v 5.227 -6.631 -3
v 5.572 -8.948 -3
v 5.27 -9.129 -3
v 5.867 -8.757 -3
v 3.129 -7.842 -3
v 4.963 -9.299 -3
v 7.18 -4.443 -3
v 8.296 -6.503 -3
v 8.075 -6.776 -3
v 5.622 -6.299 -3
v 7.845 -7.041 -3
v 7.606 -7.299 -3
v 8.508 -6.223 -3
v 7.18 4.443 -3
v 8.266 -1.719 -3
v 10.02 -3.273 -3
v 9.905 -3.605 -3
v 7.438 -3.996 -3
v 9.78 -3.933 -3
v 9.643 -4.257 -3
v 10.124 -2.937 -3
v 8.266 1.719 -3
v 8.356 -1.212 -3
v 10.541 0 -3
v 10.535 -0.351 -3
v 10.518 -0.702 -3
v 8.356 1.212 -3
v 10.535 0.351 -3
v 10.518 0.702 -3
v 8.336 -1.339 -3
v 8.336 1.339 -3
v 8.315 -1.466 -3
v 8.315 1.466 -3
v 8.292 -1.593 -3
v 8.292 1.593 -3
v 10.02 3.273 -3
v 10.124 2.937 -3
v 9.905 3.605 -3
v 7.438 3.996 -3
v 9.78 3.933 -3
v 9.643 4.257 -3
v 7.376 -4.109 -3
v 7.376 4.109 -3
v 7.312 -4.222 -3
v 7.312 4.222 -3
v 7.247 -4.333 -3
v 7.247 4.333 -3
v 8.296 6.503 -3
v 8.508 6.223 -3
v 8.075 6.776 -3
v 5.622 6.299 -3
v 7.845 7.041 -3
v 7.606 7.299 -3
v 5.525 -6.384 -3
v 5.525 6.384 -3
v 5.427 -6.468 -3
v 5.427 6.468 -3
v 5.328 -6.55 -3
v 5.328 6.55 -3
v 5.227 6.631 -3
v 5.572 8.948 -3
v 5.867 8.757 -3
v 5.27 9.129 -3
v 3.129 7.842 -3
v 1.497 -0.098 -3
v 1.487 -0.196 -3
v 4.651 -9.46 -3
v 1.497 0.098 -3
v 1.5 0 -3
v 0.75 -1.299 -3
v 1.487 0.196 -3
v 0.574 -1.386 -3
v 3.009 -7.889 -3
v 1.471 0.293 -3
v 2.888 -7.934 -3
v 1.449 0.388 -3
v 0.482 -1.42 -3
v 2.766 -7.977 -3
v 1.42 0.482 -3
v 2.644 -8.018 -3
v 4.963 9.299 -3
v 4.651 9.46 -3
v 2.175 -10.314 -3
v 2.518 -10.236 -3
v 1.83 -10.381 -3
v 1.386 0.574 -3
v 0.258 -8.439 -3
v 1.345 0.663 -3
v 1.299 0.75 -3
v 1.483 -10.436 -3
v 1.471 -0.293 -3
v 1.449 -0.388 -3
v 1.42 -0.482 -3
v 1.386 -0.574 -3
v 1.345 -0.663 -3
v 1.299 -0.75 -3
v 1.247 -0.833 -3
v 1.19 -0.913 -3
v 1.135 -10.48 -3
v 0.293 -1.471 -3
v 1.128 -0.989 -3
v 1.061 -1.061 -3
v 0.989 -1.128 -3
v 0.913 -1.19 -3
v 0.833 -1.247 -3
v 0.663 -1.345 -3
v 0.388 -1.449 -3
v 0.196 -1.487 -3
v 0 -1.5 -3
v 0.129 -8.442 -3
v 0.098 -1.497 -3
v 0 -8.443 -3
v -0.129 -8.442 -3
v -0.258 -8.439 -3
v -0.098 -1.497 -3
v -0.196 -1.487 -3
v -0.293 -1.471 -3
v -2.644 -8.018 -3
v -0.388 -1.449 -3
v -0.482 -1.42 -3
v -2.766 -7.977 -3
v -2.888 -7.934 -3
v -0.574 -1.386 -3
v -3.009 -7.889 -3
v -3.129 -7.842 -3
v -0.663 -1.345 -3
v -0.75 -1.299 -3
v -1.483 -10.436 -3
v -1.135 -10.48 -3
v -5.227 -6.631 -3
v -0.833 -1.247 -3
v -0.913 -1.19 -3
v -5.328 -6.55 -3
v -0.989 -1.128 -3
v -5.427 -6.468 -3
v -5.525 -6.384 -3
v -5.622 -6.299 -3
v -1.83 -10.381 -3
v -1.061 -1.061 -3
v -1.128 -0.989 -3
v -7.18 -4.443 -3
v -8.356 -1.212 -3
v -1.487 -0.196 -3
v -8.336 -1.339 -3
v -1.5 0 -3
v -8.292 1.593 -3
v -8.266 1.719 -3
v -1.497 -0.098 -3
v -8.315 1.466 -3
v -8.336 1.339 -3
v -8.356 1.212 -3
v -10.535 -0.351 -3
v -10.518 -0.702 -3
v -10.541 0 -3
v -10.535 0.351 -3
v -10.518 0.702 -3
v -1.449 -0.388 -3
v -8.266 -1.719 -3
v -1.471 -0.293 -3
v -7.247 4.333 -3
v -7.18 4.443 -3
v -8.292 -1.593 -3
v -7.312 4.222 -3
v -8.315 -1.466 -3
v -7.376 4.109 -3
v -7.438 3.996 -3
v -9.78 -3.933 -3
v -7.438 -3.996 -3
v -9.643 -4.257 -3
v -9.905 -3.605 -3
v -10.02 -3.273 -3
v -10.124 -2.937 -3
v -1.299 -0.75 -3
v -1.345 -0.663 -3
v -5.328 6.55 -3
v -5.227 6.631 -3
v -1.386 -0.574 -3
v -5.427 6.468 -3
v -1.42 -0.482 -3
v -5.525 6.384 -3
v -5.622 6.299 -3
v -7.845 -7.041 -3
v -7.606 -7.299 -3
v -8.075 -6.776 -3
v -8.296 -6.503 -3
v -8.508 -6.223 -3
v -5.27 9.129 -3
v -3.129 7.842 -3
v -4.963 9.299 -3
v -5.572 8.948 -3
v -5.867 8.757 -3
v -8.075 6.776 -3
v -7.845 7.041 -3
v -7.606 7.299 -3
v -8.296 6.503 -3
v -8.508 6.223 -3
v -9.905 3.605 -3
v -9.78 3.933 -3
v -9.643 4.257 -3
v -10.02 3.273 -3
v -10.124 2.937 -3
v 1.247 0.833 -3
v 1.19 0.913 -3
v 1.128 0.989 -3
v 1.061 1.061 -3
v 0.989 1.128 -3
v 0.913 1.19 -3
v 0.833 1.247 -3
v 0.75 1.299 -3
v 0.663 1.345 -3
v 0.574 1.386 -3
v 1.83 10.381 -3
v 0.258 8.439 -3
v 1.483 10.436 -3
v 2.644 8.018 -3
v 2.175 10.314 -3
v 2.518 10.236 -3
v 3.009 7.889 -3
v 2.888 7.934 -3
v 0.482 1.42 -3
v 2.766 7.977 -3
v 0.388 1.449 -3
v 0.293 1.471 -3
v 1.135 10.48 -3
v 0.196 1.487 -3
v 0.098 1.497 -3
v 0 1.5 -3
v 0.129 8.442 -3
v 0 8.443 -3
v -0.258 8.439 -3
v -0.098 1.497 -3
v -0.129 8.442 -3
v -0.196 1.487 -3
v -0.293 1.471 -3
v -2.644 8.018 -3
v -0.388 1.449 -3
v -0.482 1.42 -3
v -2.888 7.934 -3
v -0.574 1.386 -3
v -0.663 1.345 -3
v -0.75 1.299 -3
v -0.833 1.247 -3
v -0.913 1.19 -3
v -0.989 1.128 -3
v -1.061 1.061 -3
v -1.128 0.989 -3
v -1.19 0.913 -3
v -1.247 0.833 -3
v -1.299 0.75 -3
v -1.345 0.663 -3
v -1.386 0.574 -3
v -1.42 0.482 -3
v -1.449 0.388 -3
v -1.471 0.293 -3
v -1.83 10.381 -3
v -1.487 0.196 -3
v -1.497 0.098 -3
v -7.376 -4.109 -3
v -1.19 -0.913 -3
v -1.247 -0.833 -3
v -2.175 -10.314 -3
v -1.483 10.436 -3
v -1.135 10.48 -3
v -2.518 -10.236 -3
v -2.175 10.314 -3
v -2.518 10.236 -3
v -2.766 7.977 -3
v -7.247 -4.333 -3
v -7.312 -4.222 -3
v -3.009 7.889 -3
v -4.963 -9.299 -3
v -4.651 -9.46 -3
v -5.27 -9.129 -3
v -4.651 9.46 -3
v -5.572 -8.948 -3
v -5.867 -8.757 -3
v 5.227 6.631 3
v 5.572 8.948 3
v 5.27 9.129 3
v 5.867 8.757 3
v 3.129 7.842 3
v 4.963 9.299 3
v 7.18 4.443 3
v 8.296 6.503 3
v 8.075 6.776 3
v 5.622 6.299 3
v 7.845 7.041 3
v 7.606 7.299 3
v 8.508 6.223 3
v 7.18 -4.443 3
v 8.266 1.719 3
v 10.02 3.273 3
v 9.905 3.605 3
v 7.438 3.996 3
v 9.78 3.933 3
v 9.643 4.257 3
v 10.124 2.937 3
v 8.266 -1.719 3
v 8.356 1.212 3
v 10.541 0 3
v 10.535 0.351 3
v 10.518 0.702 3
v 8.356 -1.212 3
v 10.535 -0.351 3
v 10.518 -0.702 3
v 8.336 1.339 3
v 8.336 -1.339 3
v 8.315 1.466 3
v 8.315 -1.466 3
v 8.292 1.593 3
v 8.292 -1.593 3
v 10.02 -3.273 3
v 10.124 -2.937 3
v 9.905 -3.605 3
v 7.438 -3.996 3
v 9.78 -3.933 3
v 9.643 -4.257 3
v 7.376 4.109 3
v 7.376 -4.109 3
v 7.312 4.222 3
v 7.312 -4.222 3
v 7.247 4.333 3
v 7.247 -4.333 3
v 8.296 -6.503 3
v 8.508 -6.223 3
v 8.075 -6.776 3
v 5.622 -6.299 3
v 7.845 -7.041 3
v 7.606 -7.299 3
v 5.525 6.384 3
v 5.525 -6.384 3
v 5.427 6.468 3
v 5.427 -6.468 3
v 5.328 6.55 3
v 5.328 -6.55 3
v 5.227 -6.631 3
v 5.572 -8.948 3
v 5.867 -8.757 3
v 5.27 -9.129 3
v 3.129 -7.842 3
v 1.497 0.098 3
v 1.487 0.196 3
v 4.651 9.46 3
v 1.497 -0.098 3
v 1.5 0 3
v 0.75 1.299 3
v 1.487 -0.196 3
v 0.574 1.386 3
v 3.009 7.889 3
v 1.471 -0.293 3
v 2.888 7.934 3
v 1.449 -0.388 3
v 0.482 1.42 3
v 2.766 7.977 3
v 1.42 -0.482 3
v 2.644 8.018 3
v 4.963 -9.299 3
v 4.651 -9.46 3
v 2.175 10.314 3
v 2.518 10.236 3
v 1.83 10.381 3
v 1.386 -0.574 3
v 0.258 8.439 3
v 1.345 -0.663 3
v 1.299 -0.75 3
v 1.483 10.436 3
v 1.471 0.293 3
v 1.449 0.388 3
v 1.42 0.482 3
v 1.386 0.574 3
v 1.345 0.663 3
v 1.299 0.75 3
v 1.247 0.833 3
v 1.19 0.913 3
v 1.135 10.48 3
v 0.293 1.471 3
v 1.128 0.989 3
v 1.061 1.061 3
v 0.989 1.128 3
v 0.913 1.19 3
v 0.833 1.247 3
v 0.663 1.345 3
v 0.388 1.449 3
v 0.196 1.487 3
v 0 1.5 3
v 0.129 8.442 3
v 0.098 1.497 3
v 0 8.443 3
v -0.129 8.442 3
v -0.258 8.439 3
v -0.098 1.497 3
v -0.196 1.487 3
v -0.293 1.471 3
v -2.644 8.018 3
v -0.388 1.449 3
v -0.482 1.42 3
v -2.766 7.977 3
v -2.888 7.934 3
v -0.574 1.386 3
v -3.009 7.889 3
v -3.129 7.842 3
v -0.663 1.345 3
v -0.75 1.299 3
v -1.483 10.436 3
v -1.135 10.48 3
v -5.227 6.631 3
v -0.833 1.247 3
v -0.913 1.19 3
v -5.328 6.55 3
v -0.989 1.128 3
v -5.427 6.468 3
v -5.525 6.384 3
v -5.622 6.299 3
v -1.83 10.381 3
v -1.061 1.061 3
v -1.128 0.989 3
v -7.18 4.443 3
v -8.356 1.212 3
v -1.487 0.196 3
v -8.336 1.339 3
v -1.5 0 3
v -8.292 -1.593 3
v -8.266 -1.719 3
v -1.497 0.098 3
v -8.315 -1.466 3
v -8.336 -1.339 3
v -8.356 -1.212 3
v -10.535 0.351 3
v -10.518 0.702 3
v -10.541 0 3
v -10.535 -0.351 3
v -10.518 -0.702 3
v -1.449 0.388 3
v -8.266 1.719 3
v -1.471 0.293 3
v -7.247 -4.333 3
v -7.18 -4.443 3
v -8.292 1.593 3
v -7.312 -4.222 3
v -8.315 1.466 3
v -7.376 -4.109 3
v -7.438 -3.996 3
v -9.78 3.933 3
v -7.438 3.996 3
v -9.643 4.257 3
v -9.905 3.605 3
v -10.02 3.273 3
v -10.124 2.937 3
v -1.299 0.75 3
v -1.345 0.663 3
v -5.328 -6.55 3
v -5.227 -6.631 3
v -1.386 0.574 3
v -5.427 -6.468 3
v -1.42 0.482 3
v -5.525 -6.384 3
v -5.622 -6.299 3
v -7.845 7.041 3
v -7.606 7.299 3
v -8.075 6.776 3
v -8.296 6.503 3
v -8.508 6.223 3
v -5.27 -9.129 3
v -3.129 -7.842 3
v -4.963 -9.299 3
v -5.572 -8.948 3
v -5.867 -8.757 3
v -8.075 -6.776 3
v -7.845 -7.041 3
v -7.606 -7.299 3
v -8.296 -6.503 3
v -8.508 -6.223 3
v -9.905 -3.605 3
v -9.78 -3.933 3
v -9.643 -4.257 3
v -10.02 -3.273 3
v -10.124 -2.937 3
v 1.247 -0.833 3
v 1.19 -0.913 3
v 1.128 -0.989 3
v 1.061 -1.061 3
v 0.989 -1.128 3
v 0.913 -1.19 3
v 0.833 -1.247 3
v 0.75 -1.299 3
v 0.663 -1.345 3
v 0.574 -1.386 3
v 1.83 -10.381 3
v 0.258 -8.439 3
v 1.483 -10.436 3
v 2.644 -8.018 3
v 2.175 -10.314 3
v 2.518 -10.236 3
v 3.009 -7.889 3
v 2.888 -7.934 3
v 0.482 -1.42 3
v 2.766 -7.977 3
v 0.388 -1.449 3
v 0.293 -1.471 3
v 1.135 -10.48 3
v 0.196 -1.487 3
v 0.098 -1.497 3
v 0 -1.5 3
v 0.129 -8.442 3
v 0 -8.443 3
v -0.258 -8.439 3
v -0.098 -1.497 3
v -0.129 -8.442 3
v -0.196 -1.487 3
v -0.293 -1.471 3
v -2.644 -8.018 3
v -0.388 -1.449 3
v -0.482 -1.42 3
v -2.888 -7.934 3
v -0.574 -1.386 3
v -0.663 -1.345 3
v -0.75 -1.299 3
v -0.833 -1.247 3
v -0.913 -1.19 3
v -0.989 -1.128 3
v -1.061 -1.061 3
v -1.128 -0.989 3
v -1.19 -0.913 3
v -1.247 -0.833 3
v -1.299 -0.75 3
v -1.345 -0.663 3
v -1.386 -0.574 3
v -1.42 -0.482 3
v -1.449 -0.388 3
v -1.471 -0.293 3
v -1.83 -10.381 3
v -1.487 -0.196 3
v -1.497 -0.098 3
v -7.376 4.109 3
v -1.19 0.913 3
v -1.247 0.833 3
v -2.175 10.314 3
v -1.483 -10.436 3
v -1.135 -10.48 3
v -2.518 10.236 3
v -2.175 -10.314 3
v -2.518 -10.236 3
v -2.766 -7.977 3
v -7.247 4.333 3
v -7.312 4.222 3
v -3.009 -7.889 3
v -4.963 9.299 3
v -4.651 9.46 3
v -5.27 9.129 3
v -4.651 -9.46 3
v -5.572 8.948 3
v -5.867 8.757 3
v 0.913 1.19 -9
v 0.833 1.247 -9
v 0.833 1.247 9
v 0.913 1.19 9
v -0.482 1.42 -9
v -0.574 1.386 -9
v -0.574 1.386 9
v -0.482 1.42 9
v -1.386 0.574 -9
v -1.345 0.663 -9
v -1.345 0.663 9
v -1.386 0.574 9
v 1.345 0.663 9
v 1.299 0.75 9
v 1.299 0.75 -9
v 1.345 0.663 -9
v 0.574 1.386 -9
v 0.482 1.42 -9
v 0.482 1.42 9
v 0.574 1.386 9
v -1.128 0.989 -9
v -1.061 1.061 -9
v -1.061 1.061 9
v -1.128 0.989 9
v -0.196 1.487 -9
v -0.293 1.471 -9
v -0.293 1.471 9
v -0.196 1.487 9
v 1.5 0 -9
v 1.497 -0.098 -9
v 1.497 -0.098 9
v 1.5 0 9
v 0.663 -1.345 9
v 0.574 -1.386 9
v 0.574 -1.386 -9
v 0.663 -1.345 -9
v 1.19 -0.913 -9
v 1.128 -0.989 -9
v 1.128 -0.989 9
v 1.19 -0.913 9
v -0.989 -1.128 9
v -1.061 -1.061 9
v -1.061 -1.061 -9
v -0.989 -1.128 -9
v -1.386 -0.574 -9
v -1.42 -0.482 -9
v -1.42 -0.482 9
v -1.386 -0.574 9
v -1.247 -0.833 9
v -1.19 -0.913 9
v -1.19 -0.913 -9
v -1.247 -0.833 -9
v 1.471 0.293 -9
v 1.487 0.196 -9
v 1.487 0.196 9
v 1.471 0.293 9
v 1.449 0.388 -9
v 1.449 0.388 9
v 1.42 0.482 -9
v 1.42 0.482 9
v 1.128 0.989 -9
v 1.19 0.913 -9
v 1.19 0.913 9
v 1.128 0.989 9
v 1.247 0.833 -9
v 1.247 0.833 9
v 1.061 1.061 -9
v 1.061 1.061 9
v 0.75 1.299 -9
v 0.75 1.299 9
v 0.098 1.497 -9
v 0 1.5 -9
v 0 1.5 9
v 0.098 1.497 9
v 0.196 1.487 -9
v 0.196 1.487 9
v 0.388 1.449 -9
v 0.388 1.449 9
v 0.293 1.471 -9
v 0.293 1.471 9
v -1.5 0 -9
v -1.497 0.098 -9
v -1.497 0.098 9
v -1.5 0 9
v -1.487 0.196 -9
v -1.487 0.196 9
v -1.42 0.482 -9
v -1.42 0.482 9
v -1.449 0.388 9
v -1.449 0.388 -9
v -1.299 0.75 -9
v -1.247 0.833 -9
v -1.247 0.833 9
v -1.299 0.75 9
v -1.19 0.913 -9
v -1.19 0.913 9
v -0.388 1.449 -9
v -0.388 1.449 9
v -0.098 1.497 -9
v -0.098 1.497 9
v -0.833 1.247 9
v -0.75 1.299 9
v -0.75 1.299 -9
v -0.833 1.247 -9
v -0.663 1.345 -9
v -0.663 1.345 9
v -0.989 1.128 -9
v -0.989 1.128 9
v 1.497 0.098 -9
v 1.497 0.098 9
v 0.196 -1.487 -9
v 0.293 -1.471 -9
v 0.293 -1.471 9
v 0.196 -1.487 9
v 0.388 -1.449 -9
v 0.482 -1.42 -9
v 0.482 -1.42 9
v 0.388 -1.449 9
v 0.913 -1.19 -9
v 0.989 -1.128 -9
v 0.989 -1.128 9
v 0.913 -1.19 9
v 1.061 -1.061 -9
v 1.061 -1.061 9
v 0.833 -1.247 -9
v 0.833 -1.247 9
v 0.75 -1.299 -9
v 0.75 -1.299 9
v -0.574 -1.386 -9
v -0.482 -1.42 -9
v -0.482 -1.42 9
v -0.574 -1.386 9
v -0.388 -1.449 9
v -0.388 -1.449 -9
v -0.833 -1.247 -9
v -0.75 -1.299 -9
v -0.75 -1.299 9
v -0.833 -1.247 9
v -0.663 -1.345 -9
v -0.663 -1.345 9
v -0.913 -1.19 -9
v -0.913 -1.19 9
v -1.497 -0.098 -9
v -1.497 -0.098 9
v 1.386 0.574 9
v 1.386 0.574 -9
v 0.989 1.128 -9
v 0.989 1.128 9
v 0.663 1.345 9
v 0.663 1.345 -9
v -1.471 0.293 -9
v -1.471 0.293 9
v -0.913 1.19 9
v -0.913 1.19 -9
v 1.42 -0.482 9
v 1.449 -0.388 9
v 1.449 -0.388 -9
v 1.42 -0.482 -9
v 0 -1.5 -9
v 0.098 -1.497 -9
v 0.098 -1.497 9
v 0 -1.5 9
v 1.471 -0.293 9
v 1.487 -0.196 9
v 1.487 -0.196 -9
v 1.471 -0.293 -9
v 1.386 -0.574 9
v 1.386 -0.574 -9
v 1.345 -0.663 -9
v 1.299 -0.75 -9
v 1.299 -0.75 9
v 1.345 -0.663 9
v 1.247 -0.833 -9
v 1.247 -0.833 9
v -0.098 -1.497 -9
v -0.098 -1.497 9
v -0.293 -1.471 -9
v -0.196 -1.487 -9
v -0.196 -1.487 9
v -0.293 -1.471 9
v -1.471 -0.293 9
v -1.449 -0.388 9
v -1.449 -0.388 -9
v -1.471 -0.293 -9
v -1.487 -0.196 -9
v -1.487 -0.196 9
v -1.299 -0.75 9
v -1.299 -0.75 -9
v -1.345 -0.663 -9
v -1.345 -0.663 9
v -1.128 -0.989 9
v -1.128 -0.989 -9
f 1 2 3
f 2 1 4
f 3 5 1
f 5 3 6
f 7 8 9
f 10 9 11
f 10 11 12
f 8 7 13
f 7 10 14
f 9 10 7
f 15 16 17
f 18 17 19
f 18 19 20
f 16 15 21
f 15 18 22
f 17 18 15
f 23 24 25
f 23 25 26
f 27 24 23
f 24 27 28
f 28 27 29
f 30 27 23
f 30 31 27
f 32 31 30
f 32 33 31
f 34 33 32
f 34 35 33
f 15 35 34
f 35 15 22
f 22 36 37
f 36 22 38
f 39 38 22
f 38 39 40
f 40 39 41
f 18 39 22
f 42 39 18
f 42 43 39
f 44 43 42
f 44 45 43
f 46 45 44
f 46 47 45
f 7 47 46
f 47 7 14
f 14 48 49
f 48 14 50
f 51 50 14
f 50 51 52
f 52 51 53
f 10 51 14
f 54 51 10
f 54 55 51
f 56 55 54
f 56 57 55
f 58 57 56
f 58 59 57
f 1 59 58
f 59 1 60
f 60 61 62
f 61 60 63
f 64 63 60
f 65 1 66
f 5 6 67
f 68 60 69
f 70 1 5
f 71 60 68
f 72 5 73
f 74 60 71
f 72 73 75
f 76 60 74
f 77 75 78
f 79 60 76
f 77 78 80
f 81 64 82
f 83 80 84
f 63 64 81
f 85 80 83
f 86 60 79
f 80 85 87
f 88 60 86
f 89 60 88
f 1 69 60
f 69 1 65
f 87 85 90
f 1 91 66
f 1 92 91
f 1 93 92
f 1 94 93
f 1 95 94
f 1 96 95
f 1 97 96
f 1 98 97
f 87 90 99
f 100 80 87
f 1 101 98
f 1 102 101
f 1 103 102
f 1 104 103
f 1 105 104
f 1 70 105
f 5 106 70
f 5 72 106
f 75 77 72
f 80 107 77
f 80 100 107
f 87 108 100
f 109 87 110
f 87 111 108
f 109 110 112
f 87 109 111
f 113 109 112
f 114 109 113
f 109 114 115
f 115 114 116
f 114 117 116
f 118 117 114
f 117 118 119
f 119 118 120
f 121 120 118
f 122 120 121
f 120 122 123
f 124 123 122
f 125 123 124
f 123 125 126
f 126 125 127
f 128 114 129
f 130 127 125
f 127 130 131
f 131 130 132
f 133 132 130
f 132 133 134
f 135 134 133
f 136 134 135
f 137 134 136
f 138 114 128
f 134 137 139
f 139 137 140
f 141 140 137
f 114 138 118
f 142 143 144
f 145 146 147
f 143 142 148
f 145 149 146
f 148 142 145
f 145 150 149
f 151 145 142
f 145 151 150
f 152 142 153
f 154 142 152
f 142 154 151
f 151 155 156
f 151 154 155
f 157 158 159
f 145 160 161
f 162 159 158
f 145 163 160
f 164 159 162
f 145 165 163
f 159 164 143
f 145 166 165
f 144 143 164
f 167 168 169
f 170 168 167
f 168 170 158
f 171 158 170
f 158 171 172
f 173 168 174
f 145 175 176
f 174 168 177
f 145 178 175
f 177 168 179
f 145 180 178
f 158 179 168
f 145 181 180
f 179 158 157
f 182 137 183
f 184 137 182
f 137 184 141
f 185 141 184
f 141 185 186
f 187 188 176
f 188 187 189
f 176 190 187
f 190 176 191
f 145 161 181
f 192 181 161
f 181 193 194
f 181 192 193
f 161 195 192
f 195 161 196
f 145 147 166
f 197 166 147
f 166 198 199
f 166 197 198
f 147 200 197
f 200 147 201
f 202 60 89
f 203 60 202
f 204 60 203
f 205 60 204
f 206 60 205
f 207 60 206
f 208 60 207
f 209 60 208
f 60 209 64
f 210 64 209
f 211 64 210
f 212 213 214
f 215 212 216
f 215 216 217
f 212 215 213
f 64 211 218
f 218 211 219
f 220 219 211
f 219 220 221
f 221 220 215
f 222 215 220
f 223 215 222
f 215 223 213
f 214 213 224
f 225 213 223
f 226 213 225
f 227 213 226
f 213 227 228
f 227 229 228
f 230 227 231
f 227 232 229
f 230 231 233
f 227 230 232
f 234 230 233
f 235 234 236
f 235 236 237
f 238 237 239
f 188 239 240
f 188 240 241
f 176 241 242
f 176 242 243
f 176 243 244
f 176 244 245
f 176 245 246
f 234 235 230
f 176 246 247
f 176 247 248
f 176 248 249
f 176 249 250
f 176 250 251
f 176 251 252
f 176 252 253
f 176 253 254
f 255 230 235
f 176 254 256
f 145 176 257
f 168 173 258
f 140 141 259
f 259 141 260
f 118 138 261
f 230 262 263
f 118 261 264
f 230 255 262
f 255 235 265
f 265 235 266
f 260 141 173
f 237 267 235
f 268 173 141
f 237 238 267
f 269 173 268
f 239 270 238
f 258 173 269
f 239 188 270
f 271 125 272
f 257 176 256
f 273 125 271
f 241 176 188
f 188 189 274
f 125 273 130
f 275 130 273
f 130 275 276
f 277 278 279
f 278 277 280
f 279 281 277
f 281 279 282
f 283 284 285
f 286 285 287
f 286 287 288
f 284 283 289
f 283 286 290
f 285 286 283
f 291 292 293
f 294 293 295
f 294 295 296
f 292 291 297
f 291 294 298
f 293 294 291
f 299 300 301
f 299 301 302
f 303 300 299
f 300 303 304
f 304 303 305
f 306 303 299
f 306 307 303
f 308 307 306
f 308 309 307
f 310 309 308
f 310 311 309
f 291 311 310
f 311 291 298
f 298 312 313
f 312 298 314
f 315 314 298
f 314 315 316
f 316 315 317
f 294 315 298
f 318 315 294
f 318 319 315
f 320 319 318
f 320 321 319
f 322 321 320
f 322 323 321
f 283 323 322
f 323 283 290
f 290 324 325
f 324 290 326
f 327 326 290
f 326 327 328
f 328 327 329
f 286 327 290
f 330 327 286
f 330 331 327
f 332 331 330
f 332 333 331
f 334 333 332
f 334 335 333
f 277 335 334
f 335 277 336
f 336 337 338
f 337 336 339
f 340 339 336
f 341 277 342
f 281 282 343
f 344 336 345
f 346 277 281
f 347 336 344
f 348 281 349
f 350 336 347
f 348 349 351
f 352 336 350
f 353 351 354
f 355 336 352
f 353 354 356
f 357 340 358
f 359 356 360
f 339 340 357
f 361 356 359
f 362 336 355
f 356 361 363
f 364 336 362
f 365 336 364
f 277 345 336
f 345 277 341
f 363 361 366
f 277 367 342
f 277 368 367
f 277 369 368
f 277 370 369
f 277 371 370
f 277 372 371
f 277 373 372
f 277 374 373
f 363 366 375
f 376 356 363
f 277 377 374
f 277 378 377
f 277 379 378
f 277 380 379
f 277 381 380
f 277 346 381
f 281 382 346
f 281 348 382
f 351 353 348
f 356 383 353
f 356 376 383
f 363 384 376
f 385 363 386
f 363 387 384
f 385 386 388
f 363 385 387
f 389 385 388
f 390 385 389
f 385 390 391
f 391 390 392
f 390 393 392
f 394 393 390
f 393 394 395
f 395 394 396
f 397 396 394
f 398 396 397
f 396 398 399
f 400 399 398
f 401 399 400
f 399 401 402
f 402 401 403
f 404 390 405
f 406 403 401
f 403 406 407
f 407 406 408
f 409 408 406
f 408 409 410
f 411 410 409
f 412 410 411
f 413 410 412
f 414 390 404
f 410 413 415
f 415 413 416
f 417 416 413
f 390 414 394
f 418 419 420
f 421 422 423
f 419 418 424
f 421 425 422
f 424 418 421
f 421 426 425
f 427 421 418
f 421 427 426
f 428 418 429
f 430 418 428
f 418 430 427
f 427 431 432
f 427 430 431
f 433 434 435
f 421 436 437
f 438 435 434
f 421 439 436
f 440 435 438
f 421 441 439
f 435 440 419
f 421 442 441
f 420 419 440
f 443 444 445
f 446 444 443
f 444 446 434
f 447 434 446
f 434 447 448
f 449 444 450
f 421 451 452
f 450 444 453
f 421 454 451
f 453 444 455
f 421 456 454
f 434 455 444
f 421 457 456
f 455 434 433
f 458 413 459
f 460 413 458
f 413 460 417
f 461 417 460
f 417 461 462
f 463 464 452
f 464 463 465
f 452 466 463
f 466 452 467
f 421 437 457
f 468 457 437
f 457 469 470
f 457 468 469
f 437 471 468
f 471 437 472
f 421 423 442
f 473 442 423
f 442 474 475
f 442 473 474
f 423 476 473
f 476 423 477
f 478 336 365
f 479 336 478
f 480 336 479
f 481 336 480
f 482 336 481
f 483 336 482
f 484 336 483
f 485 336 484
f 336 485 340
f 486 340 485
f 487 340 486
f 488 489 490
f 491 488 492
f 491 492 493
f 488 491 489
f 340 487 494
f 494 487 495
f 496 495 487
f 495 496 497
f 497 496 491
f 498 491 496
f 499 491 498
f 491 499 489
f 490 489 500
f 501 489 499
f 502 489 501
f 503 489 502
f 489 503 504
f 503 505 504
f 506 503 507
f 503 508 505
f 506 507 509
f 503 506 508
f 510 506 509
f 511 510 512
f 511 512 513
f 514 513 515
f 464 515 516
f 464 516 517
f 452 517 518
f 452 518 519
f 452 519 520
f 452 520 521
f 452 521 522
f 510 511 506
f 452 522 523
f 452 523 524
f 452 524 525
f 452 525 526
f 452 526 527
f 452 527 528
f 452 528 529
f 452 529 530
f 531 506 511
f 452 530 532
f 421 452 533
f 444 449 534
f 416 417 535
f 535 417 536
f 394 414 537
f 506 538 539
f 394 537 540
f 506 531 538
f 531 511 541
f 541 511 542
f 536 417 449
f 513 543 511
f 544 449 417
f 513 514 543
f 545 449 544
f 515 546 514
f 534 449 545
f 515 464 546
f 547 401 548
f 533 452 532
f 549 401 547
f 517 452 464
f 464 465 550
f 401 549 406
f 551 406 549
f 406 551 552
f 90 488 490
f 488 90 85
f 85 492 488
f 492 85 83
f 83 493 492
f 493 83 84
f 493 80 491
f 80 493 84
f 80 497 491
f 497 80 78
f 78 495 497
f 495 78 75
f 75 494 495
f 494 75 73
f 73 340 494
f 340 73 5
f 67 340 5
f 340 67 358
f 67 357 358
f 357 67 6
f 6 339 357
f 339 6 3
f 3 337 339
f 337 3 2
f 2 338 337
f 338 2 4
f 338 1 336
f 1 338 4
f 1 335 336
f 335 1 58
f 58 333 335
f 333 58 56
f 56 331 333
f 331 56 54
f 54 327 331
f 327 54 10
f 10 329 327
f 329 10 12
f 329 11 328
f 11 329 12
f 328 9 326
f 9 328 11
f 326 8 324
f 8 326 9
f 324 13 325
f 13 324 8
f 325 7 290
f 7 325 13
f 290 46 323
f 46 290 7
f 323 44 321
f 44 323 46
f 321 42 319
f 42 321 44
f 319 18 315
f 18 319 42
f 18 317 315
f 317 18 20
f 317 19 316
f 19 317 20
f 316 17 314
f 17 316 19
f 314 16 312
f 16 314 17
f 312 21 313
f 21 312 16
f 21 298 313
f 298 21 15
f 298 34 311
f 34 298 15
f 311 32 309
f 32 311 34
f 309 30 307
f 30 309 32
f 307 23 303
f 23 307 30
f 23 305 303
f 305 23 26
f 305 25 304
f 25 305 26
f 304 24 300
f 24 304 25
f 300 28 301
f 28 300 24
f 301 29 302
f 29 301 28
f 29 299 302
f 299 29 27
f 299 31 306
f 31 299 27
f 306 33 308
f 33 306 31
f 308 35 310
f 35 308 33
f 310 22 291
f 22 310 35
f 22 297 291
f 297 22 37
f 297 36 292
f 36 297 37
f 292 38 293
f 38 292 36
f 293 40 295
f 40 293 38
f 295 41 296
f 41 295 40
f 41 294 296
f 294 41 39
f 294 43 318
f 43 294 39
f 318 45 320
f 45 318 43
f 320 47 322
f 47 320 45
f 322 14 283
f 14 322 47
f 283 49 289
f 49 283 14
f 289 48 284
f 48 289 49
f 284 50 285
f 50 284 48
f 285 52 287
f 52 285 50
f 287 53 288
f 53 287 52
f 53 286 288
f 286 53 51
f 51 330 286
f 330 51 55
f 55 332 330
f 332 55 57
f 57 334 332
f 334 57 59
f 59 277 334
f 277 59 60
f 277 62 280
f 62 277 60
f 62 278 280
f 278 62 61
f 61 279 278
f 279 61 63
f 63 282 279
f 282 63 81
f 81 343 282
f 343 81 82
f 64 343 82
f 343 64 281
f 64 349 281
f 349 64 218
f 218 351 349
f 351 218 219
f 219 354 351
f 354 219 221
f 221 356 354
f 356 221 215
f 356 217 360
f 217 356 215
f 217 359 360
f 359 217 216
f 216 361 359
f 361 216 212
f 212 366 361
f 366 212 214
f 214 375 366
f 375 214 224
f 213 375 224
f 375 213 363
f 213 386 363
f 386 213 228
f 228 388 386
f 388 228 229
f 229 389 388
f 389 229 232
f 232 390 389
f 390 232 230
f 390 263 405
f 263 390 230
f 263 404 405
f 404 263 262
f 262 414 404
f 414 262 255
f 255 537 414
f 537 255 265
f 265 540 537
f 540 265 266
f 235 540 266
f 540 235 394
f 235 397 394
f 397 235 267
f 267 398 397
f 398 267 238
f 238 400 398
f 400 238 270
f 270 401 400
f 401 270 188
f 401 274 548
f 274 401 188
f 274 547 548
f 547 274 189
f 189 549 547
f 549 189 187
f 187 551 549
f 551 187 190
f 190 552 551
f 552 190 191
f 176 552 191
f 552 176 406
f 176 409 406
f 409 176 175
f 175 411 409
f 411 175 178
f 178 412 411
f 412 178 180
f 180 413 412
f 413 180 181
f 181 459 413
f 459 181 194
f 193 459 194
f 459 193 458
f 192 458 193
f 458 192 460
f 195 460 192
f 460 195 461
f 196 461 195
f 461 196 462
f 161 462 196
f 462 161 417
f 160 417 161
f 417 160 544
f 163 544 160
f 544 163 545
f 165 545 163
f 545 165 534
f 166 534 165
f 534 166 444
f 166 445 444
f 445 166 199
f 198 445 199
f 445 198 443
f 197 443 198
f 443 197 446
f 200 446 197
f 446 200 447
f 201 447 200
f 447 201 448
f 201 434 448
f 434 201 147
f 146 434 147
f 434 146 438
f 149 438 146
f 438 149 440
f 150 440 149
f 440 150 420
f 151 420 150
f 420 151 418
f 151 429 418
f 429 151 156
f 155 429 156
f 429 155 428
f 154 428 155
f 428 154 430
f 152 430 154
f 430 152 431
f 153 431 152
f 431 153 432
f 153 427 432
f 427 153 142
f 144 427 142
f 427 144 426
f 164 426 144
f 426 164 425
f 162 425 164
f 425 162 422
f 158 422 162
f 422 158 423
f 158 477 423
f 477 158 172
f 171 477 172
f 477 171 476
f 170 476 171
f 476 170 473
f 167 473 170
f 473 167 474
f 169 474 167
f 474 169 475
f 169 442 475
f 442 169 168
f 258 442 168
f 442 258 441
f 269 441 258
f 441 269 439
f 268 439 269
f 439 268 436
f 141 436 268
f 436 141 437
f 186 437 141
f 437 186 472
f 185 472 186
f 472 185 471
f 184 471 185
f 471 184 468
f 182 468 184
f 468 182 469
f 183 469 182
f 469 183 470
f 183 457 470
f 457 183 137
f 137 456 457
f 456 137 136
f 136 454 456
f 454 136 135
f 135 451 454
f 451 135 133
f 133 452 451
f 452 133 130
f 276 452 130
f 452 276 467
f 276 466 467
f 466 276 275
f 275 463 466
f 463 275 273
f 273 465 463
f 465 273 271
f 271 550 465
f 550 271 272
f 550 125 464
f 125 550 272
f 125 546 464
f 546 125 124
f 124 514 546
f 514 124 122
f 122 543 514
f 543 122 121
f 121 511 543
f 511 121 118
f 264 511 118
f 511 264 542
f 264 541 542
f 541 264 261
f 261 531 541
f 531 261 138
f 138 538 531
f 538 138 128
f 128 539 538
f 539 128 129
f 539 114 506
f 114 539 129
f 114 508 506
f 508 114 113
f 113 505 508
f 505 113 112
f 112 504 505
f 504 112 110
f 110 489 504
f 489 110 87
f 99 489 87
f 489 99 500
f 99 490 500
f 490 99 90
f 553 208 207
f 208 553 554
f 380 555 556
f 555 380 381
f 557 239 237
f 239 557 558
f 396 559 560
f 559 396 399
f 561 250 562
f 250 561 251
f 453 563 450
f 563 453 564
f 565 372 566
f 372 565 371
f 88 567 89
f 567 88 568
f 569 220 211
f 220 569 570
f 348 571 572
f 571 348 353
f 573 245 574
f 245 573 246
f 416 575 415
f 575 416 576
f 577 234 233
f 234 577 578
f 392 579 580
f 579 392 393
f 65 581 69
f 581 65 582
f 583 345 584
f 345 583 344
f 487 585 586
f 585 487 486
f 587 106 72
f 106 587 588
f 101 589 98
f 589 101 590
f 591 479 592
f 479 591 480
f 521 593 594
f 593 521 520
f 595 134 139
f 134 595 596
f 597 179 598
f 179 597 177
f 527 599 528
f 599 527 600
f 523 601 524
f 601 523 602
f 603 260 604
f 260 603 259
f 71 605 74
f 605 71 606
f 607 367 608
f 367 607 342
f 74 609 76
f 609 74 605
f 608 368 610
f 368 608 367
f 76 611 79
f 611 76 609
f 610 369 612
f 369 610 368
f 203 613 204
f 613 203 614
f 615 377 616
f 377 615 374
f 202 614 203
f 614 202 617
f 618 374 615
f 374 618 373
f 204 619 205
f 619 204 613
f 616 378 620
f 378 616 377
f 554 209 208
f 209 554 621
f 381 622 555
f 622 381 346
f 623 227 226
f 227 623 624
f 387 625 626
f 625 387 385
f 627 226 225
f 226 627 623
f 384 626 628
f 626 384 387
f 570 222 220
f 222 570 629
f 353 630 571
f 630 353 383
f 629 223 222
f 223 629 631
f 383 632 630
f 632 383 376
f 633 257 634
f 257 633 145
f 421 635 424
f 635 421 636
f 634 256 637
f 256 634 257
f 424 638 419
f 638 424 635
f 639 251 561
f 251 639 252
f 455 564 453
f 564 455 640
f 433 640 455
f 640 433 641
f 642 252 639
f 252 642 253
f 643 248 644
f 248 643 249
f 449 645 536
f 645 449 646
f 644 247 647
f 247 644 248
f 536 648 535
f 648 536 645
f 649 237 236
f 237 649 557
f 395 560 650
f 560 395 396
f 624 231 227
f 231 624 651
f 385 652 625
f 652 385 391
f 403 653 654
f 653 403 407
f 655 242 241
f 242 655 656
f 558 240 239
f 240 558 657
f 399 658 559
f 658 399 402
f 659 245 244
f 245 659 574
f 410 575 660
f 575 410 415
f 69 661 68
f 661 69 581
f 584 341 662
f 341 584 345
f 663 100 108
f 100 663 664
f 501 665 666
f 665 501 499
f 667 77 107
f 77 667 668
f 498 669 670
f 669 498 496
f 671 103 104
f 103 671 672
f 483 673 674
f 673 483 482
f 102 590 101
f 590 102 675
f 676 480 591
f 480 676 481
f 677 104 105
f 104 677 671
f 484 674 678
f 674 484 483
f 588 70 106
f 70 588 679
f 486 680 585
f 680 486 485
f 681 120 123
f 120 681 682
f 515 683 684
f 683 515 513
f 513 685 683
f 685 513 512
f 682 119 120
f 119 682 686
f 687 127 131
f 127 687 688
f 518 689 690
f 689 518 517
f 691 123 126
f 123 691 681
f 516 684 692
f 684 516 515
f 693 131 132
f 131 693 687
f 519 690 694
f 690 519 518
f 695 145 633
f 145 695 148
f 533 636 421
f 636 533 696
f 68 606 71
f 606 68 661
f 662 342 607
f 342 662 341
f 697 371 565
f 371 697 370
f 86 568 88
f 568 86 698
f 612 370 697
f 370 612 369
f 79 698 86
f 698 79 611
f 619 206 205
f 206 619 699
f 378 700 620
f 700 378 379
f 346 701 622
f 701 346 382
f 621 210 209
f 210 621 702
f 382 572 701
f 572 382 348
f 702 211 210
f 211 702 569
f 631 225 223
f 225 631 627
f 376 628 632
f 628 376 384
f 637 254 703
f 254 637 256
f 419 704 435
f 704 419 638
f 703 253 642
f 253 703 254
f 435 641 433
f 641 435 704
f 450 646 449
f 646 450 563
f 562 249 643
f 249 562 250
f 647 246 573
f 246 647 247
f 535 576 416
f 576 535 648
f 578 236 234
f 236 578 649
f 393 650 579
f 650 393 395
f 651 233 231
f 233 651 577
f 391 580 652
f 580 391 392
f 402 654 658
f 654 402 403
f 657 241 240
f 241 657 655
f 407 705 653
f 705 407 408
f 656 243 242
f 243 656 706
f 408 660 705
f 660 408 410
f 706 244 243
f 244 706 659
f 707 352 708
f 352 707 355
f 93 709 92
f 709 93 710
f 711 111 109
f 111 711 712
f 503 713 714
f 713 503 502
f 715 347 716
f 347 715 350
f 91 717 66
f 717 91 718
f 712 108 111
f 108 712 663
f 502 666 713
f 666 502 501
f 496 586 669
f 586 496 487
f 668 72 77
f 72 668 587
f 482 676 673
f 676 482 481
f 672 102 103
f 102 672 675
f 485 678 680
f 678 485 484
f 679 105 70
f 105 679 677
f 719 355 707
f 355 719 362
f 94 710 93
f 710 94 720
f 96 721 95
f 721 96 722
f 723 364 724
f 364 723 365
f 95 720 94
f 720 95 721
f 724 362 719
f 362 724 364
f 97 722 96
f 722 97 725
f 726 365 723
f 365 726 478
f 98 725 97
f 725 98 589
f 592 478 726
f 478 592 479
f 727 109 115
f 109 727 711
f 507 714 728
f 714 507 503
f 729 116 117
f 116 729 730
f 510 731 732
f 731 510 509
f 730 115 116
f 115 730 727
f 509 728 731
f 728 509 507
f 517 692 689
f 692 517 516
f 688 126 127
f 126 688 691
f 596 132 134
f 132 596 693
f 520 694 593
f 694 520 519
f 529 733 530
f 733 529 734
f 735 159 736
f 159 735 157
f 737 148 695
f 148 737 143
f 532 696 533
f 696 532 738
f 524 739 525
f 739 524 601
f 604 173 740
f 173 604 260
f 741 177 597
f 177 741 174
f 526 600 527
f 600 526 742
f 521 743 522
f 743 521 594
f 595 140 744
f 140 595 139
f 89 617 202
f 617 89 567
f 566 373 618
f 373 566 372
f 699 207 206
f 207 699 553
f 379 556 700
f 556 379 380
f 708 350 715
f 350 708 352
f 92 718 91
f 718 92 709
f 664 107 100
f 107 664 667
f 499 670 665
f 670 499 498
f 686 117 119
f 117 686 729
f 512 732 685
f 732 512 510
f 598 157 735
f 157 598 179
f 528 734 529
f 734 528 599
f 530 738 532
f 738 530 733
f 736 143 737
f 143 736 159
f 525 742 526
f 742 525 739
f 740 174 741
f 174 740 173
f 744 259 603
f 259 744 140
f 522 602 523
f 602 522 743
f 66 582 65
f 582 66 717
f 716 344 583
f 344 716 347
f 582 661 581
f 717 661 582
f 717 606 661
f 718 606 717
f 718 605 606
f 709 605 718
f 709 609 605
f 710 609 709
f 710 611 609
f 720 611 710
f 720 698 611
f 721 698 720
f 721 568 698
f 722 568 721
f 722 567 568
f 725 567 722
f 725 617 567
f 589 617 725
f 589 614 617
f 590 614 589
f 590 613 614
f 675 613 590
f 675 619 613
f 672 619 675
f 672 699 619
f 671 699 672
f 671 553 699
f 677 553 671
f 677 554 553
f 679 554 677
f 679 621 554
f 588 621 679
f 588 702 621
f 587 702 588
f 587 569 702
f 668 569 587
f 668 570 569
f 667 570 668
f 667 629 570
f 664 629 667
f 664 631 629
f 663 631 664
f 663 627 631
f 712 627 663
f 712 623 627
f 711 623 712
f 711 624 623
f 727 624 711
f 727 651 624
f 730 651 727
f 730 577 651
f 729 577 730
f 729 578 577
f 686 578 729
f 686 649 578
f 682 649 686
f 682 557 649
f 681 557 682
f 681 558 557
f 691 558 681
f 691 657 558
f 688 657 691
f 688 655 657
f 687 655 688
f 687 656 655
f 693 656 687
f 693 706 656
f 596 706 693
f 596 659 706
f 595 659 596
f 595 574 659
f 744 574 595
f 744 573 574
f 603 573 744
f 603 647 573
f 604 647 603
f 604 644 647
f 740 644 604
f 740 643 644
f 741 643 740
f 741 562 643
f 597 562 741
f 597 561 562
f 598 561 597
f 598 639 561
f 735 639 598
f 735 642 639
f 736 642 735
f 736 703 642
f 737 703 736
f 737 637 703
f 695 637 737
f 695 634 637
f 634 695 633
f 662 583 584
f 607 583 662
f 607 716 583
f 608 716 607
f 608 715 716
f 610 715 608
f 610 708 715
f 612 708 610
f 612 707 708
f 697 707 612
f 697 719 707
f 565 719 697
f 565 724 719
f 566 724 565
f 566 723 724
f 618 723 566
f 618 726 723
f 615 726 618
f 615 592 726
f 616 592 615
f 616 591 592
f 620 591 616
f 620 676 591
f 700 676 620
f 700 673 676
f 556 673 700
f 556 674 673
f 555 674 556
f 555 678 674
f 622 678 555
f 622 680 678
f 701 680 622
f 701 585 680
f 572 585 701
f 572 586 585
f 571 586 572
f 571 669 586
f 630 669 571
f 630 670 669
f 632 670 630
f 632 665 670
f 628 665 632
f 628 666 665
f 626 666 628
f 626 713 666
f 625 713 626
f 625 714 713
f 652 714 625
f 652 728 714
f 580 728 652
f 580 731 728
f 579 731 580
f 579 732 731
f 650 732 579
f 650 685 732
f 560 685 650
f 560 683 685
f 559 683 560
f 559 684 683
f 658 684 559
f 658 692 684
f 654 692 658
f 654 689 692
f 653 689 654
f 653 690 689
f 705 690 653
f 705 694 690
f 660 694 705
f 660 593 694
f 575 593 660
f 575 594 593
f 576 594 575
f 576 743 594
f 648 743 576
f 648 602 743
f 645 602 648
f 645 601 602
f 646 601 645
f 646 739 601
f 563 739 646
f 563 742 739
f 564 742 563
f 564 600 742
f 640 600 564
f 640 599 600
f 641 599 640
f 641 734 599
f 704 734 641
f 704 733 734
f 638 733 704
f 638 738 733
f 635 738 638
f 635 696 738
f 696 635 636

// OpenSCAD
// AR4_SG1_gear.scad
// Parametric OpenSCAD recreation of AR4_SG1_gear.STEP
// Units: mm
// Source STEP observations:
//   thickness = 0.9374 - (-5.0626) = 6.0
//   outer radius ~= 10.541
//   root/minor radius ~= 8.4431757
//   bore radius = 1.5
//   tooth centres repeat every 20 deg => 18 teeth
//
// This is a clean parametric approximation, not a literal BREP conversion.

$fn = 96;

// ---- Main gear parameters ----
// Number of teeth around the gear circumference.
teeth_count = 18;

// Axial thickness of the gear body.
gear_thickness = 6.0;

// Radius to the outside of each tooth tip.
tooth_tip_radius = 10.541;

// Radius to the bottom of each tooth valley.
tooth_root_radius = 8.4431757035;

// Diameter of the central shaft/bore hole.
bore_diameter = 3.0;

// ---- Counter gear parameters ----
// Counter gear disabled/hidden by default.
show_counter_gear = false;

counter_teeth_count       = teeth_count;
counter_tooth_tip_radius  = tooth_tip_radius;
counter_tooth_root_radius = tooth_root_radius;
counter_bore_diameter     = bore_diameter;
counter_gear_thickness    = gear_thickness;

// Distance between the two gear axes when the counter gear is shown.
counter_center_distance = tooth_tip_radius + counter_tooth_root_radius;

// Angular offset that places the counter gear teeth into the main gear valleys.
counter_mesh_phase_degrees = 360 / (2 * counter_teeth_count);

// ---- Shaft parameters ----
// Shaft is coaxial with the gear bore and the OpenSCAD Z axis.
// Set shaft_diameter <= 0 or shaft_length <= 0 to suppress the shaft in the
// ar4_sg1_gear_with_shaft() assembly.
shaft_diameter = bore_diameter;
shaft_length   = 18.0;
shaft_z_offset = 0.0;   // moves the shaft along Z relative to the gear centre
shaft_facets   = 96;

// ---- Tooth angular controls ----
// Defaults match the STEP tooth-tip angle closely.
// Both values are measured in degrees either side of each tooth centreline.
tooth_tip_half_angle_degrees  = 3.82;
tooth_base_half_angle_degrees = 8.25;

// ---- Faceting controls for the 2D outline ----
tooth_tip_arc_steps  = 4;
tooth_root_arc_steps = 2;
bore_facets          = 96;

// ---- Helpers ----
function polar_point(radius, angle_degrees) =
    [radius * cos(angle_degrees), radius * sin(angle_degrees)];

function arc_points(radius, start_angle_degrees, end_angle_degrees, segment_count) =
    [for (segment_index = [0:segment_count])
        polar_point(
            radius,
            start_angle_degrees + (end_angle_degrees - start_angle_degrees) * segment_index / segment_count
        )
    ];

function tooth_points(tooth_index,
                      gear_teeth_count=teeth_count,
                      tip_radius=tooth_tip_radius,
                      root_radius=tooth_root_radius,
                      tip_half_angle_degrees=tooth_tip_half_angle_degrees,
                      base_half_angle_degrees=tooth_base_half_angle_degrees,
                      tip_arc_segment_count=tooth_tip_arc_steps,
                      root_arc_segment_count=tooth_root_arc_steps) =
    let(
        tooth_pitch_degrees = 360 / gear_teeth_count,
        tooth_center_degrees = tooth_index * tooth_pitch_degrees
    )
    concat(
        arc_points(root_radius,
                   tooth_center_degrees - tooth_pitch_degrees/2,
                   tooth_center_degrees - base_half_angle_degrees,
                   root_arc_segment_count),       // root valley approaching tooth
        [polar_point(tip_radius,
                     tooth_center_degrees - tip_half_angle_degrees)],
        arc_points(tip_radius,
                   tooth_center_degrees - tip_half_angle_degrees,
                   tooth_center_degrees + tip_half_angle_degrees,
                   tip_arc_segment_count),         // rounded/flat-ish tooth tip
        [polar_point(root_radius,
                     tooth_center_degrees + base_half_angle_degrees)],
        arc_points(root_radius,
                   tooth_center_degrees + base_half_angle_degrees,
                   tooth_center_degrees + tooth_pitch_degrees/2,
                   root_arc_segment_count)         // root valley leaving tooth
    );

function gear_points(gear_teeth_count=teeth_count,
                     tip_radius=tooth_tip_radius,
                     root_radius=tooth_root_radius,
                     tip_half_angle_degrees=tooth_tip_half_angle_degrees,
                     base_half_angle_degrees=tooth_base_half_angle_degrees,
                     tip_arc_segment_count=tooth_tip_arc_steps,
                     root_arc_segment_count=tooth_root_arc_steps) =
    [for (tooth_index = [0:gear_teeth_count-1])
        each tooth_points(tooth_index,
                          gear_teeth_count,
                          tip_radius,
                          root_radius,
                          tip_half_angle_degrees,
                          base_half_angle_degrees,
                          tip_arc_segment_count,
                          root_arc_segment_count)
    ];

// ---- 2D profile ----
module ar4_sg1_gear_2d(gear_teeth_count=teeth_count,
                       tip_radius=tooth_tip_radius,
                       root_radius=tooth_root_radius,
                       tip_half_angle_degrees=tooth_tip_half_angle_degrees,
                       base_half_angle_degrees=tooth_base_half_angle_degrees,
                       tip_arc_segment_count=tooth_tip_arc_steps,
                       root_arc_segment_count=tooth_root_arc_steps) {
    polygon(points = gear_points(gear_teeth_count,
                                 tip_radius,
                                 root_radius,
                                 tip_half_angle_degrees,
                                 base_half_angle_degrees,
                                 tip_arc_segment_count,
                                 root_arc_segment_count));
}

// ---- Parametric shaft, axis along OpenSCAD Z ----
module parametric_shaft(shaft_diameter_value=shaft_diameter,
                        shaft_length_value=shaft_length,
                        z_offset=shaft_z_offset,
                        center_on_origin=true,
                        facet_count=shaft_facets) {
    if (shaft_diameter_value > 0 && shaft_length_value > 0) {
        translate([0, 0, z_offset])
            cylinder(h=shaft_length_value,
                     d=shaft_diameter_value,
                     center=center_on_origin,
                     $fn=facet_count);
    }
}

// ---- 3D gear, axis along OpenSCAD Z ----
module ar4_sg1_gear(gear_teeth_count=teeth_count,
                    gear_height=gear_thickness,
                    tip_radius=tooth_tip_radius,
                    root_radius=tooth_root_radius,
                    bore_diameter_value=bore_diameter,
                    tip_half_angle_degrees=tooth_tip_half_angle_degrees,
                    base_half_angle_degrees=tooth_base_half_angle_degrees,
                    tip_arc_segment_count=tooth_tip_arc_steps,
                    root_arc_segment_count=tooth_root_arc_steps,
                    center_on_origin=true) {
    cut_clearance = 0.02;
    difference() {
        linear_extrude(height=gear_height, center=center_on_origin, convexity=10)
            ar4_sg1_gear_2d(gear_teeth_count=gear_teeth_count,
                             tip_radius=tip_radius,
                             root_radius=root_radius,
                             tip_half_angle_degrees=tip_half_angle_degrees,
                             base_half_angle_degrees=base_half_angle_degrees,
                             tip_arc_segment_count=tip_arc_segment_count,
                             root_arc_segment_count=root_arc_segment_count);

        if (bore_diameter_value > 0)
            translate([0, 0, center_on_origin ? 0 : gear_height/2])
                cylinder(h=gear_height + 2*cut_clearance,
                         d=bore_diameter_value,
                         center=true,
                         $fn=bore_facets);
    }
}

// ---- Gear plus coaxial parametric shaft ----
module ar4_sg1_gear_with_shaft(gear_teeth_count=teeth_count,
                               gear_height=gear_thickness,
                               tip_radius=tooth_tip_radius,
                               root_radius=tooth_root_radius,
                               bore_diameter_value=bore_diameter,
                               tip_half_angle_degrees=tooth_tip_half_angle_degrees,
                               base_half_angle_degrees=tooth_base_half_angle_degrees,
                               tip_arc_segment_count=tooth_tip_arc_steps,
                               root_arc_segment_count=tooth_root_arc_steps,
                               shaft_diameter_value=shaft_diameter,
                               shaft_length_value=shaft_length,
                               shaft_z_offset_value=shaft_z_offset,
                               center_on_origin=true) {
    union() {
        ar4_sg1_gear(gear_teeth_count=gear_teeth_count,
                     gear_height=gear_height,
                     tip_radius=tip_radius,
                     root_radius=root_radius,
                     bore_diameter_value=bore_diameter_value,
                     tip_half_angle_degrees=tip_half_angle_degrees,
                     base_half_angle_degrees=base_half_angle_degrees,
                     tip_arc_segment_count=tip_arc_segment_count,
                     root_arc_segment_count=root_arc_segment_count,
                     center_on_origin=center_on_origin);
        parametric_shaft(shaft_diameter_value=shaft_diameter_value,
                         shaft_length_value=shaft_length_value,
                         z_offset=shaft_z_offset_value,
                         center_on_origin=center_on_origin,
                         facet_count=shaft_facets);
    }
}

// ---- Main gear plus optional meshing counter gear ----
module ar4_sg1_gear_pair(main_teeth_count=teeth_count,
                         main_gear_height=gear_thickness,
                         main_tip_radius=tooth_tip_radius,
                         main_root_radius=tooth_root_radius,
                         main_bore_diameter=bore_diameter,
                         counter_teeth_count_value=counter_teeth_count,
                         counter_tip_radius=counter_tooth_tip_radius,
                         counter_root_radius=counter_tooth_root_radius,
                         counter_bore_diameter_value=counter_bore_diameter,
                         counter_gear_height=counter_gear_thickness,
                         center_distance=counter_center_distance,
                         mesh_phase_degrees=counter_mesh_phase_degrees,
                         center_on_origin=true) {
    union() {
        ar4_sg1_gear(gear_teeth_count=main_teeth_count,
                     gear_height=main_gear_height,
                     tip_radius=main_tip_radius,
                     root_radius=main_root_radius,
                     bore_diameter_value=main_bore_diameter,
                     tip_half_angle_degrees=tooth_tip_half_angle_degrees,
                     base_half_angle_degrees=tooth_base_half_angle_degrees,
                     tip_arc_segment_count=tooth_tip_arc_steps,
                     root_arc_segment_count=tooth_root_arc_steps,
                     center_on_origin=center_on_origin);

        if (show_counter_gear)
            translate([center_distance, 0, 0])
                rotate([0, 0, mesh_phase_degrees])
                    ar4_sg1_gear(gear_teeth_count=counter_teeth_count_value,
                                 gear_height=counter_gear_height,
                                 tip_radius=counter_tip_radius,
                                 root_radius=counter_root_radius,
                                 bore_diameter_value=counter_bore_diameter_value,
                                 tip_half_angle_degrees=tooth_tip_half_angle_degrees,
                                 base_half_angle_degrees=tooth_base_half_angle_degrees,
                                 tip_arc_segment_count=tooth_tip_arc_steps,
                                 root_arc_segment_count=tooth_root_arc_steps,
                                 center_on_origin=center_on_origin);
    }
}

module ar4_sg1_gear_pair_with_shafts(main_teeth_count=teeth_count,
                                     main_gear_height=gear_thickness,
                                     main_tip_radius=tooth_tip_radius,
                                     main_root_radius=tooth_root_radius,
                                     main_bore_diameter=bore_diameter,
                                     counter_teeth_count_value=counter_teeth_count,
                                     counter_tip_radius=counter_tooth_tip_radius,
                                     counter_root_radius=counter_tooth_root_radius,
                                     counter_bore_diameter_value=counter_bore_diameter,
                                     counter_gear_height=counter_gear_thickness,
                                     center_distance=counter_center_distance,
                                     mesh_phase_degrees=counter_mesh_phase_degrees,
                                     shaft_diameter_value=shaft_diameter,
                                     shaft_length_value=shaft_length,
                                     shaft_z_offset_value=shaft_z_offset,
                                     center_on_origin=true) {
    union() {
        ar4_sg1_gear_with_shaft(gear_teeth_count=main_teeth_count,
                                gear_height=main_gear_height,
                                tip_radius=main_tip_radius,
                                root_radius=main_root_radius,
                                bore_diameter_value=main_bore_diameter,
                                shaft_diameter_value=shaft_diameter_value,
                                shaft_length_value=shaft_length_value,
                                shaft_z_offset_value=shaft_z_offset_value,
                                center_on_origin=center_on_origin);

        if (show_counter_gear)
            translate([center_distance, 0, 0])
                rotate([0, 0, mesh_phase_degrees])
                    ar4_sg1_gear_with_shaft(gear_teeth_count=counter_teeth_count_value,
                                            gear_height=counter_gear_height,
                                            tip_radius=counter_tip_radius,
                                            root_radius=counter_root_radius,
                                            bore_diameter_value=counter_bore_diameter_value,
                                            shaft_diameter_value=shaft_diameter_value,
                                            shaft_length_value=shaft_length_value,
                                            shaft_z_offset_value=shaft_z_offset_value,
                                            center_on_origin=center_on_origin);
    }
}

// STEP file used X as the gear axis, with faces at X=-5.0626 and X=0.9374.
// Use these wrappers if you want the same approximate orientation/position.
module ar4_sg1_gear_step_orientation() {
    translate([-2.0626, 0, 0])
        rotate([0, 90, 0])
            ar4_sg1_gear(center_on_origin=true);
}

module ar4_sg1_gear_with_shaft_step_orientation() {
    translate([-2.0626, 0, 0])
        rotate([0, 90, 0])
            ar4_sg1_gear_with_shaft(center_on_origin=true);
}

module ar4_sg1_gear_pair_step_orientation() {
    translate([-2.0626, 0, 0])
        rotate([0, 90, 0])
            ar4_sg1_gear_pair(center_on_origin=true);
}

module ar4_sg1_gear_pair_with_shafts_step_orientation() {
    translate([-2.0626, 0, 0])
        rotate([0, 90, 0])
            ar4_sg1_gear_pair_with_shafts(center_on_origin=true);
}

// ---- Render default ----
ar4_sg1_gear_with_shaft();

// Uncomment for alternate render options:
// ar4_sg1_gear();
// ar4_sg1_gear_pair();
// ar4_sg1_gear_pair_with_shafts();

// Uncomment for the original STEP-like X-axis placement instead:
// ar4_sg1_gear_step_orientation();
// ar4_sg1_gear_with_shaft_step_orientation();
// ar4_sg1_gear_pair_step_orientation();
// ar4_sg1_gear_pair_with_shafts_step_orientation();
